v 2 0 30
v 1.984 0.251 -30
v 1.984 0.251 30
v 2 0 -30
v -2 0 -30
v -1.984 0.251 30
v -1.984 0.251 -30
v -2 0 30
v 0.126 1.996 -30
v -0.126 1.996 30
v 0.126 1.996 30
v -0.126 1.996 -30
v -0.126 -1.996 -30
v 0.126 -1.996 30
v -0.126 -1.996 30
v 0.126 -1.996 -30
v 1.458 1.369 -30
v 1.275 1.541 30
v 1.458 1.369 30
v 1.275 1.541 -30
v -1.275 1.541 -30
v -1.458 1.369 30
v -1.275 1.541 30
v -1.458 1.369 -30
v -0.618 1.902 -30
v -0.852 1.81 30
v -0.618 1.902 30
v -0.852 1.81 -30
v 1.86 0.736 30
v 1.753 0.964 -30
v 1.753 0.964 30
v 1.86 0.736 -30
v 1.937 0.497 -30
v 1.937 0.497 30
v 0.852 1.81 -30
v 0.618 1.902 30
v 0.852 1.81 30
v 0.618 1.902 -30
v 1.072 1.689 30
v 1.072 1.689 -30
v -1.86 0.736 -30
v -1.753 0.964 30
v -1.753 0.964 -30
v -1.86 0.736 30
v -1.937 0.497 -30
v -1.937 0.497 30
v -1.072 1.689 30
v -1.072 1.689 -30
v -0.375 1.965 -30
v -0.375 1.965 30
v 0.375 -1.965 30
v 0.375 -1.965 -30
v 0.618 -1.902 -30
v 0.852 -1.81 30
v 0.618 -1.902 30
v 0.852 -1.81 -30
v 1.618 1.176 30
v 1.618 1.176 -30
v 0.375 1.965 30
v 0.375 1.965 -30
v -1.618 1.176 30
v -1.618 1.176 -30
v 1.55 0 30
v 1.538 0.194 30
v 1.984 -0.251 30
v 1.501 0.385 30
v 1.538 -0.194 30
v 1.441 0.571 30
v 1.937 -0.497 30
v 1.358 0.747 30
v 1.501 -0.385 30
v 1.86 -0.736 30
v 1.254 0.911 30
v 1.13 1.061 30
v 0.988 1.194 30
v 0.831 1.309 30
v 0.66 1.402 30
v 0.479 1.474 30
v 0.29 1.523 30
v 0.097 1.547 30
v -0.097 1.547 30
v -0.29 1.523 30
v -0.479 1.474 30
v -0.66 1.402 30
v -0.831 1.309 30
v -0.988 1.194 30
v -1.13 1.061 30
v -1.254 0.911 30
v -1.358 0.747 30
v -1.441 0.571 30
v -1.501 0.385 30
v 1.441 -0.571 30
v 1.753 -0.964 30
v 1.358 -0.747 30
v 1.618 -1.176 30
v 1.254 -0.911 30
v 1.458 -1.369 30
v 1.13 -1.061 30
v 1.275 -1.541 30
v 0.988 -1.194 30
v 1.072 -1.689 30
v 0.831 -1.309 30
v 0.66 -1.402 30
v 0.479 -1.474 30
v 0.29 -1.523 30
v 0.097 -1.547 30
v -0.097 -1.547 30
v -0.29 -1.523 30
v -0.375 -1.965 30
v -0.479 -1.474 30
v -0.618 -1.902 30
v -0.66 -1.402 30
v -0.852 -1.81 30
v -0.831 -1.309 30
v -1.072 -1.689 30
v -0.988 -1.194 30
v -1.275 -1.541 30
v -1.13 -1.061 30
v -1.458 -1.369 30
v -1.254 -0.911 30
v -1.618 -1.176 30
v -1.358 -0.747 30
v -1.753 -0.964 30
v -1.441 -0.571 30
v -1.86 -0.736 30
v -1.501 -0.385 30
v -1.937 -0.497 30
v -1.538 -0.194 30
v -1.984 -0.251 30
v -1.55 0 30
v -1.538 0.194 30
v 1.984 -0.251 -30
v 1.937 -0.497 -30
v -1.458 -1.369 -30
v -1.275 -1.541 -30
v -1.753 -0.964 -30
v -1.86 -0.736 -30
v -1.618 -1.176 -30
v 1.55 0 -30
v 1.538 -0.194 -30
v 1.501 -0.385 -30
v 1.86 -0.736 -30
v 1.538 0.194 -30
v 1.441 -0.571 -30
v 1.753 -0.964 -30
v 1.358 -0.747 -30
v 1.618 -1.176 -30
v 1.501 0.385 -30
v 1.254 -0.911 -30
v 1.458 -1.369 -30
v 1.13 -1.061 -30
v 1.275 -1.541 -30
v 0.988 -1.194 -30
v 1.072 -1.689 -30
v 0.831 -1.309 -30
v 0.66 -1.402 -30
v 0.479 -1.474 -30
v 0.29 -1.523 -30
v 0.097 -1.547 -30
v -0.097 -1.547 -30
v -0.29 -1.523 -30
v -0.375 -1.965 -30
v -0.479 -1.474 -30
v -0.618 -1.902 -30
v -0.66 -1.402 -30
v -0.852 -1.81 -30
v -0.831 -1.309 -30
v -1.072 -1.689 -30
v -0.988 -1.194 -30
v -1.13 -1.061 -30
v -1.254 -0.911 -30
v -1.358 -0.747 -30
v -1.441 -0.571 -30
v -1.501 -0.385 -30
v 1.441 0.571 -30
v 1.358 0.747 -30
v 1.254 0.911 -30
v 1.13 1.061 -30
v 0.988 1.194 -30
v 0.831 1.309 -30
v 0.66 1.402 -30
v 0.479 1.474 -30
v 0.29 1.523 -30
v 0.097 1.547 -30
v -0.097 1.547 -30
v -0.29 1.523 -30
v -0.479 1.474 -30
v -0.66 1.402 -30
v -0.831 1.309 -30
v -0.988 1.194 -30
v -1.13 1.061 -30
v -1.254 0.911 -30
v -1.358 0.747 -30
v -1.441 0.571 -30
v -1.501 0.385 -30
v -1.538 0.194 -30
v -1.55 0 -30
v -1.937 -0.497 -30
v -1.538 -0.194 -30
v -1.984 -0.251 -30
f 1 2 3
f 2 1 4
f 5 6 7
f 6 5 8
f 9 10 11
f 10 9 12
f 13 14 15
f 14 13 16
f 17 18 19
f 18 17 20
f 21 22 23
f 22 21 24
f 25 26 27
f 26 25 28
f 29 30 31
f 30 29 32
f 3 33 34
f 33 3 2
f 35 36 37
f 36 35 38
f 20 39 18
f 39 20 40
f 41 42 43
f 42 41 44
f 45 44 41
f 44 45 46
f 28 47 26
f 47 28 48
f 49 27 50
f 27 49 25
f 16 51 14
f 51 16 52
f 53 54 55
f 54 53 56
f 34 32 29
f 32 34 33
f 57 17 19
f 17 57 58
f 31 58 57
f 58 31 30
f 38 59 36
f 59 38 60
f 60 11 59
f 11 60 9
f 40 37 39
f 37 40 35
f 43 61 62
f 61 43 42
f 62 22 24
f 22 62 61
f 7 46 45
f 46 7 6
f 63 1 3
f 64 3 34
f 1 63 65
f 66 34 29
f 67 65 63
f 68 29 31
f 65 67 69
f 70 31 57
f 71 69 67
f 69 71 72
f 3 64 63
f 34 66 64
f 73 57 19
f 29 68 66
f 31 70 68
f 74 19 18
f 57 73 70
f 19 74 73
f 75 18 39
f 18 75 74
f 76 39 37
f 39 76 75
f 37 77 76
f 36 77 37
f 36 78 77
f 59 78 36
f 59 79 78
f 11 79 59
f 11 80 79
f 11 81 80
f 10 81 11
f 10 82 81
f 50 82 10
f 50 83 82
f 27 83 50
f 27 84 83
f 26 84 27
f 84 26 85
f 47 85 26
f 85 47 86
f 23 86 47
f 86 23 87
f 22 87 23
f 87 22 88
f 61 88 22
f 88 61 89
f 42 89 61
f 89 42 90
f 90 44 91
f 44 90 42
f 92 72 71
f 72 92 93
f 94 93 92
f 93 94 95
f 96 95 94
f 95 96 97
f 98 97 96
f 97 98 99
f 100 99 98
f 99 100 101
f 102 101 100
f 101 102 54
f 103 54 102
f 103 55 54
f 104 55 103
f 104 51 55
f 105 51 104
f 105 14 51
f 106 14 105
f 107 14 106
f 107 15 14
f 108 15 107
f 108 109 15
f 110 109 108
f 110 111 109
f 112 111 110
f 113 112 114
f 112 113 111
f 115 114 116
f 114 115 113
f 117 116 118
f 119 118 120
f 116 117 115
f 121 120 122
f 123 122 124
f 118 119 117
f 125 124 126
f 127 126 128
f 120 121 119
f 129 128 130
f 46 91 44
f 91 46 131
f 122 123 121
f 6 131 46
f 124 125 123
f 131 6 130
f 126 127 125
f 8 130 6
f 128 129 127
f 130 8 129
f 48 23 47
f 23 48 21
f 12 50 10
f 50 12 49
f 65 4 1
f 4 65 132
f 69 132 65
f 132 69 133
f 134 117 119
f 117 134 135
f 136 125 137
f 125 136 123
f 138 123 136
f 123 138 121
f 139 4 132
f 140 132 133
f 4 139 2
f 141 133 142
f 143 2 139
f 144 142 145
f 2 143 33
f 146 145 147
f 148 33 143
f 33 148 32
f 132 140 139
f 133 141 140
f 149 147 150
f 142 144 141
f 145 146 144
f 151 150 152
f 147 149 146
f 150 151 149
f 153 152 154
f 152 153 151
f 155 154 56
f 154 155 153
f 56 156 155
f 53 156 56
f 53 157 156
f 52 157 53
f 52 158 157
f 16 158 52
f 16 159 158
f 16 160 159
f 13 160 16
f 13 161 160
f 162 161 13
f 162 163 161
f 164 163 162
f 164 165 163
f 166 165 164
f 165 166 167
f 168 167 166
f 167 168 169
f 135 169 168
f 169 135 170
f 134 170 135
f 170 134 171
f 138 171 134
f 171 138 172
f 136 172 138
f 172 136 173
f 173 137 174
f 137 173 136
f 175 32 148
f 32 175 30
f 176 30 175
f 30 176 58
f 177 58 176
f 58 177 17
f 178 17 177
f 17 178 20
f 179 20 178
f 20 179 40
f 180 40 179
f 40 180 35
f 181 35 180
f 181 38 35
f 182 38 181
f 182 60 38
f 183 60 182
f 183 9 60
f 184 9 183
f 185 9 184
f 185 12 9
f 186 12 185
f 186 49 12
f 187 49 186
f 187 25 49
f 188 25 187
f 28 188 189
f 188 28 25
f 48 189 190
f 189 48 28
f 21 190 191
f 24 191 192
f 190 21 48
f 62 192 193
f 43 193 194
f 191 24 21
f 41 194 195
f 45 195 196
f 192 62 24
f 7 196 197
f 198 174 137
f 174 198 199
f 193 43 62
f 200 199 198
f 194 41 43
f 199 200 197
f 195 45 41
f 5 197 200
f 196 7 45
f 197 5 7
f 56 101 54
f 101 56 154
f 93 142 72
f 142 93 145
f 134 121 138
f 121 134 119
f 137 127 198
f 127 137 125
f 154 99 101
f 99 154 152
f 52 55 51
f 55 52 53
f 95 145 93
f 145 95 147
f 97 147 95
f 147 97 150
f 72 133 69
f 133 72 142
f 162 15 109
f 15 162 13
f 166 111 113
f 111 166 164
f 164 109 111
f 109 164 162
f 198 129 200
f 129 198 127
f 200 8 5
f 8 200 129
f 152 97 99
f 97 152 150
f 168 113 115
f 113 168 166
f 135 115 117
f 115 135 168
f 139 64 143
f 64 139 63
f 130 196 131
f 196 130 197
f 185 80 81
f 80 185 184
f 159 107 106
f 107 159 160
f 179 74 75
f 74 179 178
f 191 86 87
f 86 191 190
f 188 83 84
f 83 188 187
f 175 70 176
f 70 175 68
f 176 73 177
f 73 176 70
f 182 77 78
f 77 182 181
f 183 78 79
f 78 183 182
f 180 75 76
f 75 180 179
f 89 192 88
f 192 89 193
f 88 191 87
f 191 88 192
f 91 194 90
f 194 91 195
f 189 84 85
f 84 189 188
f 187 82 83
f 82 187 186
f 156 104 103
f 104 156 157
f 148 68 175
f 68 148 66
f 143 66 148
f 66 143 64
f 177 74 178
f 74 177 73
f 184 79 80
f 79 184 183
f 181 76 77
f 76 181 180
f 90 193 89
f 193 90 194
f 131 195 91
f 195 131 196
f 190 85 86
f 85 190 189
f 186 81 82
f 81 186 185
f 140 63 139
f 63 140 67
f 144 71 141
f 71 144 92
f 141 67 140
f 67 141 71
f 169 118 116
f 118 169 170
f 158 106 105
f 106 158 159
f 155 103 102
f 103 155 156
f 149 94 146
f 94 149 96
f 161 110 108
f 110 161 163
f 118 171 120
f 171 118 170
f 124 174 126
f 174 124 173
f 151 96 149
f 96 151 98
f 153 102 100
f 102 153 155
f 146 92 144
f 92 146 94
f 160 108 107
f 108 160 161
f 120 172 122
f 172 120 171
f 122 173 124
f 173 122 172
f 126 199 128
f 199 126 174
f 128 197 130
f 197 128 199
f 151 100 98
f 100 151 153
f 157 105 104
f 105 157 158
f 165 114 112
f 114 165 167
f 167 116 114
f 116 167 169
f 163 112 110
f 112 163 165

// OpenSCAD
$fn = 50;


difference() {
	union() {
		translate(v = [0, 0, -30.0000000000]) {
			cylinder(h = 60, r = 2.0000000000);
		}
	}
	union() {
		translate(v = [0, 0, -100.0000000000]) {
			cylinder(h = 200, r = 1.5500000000);
		}
	}
}
